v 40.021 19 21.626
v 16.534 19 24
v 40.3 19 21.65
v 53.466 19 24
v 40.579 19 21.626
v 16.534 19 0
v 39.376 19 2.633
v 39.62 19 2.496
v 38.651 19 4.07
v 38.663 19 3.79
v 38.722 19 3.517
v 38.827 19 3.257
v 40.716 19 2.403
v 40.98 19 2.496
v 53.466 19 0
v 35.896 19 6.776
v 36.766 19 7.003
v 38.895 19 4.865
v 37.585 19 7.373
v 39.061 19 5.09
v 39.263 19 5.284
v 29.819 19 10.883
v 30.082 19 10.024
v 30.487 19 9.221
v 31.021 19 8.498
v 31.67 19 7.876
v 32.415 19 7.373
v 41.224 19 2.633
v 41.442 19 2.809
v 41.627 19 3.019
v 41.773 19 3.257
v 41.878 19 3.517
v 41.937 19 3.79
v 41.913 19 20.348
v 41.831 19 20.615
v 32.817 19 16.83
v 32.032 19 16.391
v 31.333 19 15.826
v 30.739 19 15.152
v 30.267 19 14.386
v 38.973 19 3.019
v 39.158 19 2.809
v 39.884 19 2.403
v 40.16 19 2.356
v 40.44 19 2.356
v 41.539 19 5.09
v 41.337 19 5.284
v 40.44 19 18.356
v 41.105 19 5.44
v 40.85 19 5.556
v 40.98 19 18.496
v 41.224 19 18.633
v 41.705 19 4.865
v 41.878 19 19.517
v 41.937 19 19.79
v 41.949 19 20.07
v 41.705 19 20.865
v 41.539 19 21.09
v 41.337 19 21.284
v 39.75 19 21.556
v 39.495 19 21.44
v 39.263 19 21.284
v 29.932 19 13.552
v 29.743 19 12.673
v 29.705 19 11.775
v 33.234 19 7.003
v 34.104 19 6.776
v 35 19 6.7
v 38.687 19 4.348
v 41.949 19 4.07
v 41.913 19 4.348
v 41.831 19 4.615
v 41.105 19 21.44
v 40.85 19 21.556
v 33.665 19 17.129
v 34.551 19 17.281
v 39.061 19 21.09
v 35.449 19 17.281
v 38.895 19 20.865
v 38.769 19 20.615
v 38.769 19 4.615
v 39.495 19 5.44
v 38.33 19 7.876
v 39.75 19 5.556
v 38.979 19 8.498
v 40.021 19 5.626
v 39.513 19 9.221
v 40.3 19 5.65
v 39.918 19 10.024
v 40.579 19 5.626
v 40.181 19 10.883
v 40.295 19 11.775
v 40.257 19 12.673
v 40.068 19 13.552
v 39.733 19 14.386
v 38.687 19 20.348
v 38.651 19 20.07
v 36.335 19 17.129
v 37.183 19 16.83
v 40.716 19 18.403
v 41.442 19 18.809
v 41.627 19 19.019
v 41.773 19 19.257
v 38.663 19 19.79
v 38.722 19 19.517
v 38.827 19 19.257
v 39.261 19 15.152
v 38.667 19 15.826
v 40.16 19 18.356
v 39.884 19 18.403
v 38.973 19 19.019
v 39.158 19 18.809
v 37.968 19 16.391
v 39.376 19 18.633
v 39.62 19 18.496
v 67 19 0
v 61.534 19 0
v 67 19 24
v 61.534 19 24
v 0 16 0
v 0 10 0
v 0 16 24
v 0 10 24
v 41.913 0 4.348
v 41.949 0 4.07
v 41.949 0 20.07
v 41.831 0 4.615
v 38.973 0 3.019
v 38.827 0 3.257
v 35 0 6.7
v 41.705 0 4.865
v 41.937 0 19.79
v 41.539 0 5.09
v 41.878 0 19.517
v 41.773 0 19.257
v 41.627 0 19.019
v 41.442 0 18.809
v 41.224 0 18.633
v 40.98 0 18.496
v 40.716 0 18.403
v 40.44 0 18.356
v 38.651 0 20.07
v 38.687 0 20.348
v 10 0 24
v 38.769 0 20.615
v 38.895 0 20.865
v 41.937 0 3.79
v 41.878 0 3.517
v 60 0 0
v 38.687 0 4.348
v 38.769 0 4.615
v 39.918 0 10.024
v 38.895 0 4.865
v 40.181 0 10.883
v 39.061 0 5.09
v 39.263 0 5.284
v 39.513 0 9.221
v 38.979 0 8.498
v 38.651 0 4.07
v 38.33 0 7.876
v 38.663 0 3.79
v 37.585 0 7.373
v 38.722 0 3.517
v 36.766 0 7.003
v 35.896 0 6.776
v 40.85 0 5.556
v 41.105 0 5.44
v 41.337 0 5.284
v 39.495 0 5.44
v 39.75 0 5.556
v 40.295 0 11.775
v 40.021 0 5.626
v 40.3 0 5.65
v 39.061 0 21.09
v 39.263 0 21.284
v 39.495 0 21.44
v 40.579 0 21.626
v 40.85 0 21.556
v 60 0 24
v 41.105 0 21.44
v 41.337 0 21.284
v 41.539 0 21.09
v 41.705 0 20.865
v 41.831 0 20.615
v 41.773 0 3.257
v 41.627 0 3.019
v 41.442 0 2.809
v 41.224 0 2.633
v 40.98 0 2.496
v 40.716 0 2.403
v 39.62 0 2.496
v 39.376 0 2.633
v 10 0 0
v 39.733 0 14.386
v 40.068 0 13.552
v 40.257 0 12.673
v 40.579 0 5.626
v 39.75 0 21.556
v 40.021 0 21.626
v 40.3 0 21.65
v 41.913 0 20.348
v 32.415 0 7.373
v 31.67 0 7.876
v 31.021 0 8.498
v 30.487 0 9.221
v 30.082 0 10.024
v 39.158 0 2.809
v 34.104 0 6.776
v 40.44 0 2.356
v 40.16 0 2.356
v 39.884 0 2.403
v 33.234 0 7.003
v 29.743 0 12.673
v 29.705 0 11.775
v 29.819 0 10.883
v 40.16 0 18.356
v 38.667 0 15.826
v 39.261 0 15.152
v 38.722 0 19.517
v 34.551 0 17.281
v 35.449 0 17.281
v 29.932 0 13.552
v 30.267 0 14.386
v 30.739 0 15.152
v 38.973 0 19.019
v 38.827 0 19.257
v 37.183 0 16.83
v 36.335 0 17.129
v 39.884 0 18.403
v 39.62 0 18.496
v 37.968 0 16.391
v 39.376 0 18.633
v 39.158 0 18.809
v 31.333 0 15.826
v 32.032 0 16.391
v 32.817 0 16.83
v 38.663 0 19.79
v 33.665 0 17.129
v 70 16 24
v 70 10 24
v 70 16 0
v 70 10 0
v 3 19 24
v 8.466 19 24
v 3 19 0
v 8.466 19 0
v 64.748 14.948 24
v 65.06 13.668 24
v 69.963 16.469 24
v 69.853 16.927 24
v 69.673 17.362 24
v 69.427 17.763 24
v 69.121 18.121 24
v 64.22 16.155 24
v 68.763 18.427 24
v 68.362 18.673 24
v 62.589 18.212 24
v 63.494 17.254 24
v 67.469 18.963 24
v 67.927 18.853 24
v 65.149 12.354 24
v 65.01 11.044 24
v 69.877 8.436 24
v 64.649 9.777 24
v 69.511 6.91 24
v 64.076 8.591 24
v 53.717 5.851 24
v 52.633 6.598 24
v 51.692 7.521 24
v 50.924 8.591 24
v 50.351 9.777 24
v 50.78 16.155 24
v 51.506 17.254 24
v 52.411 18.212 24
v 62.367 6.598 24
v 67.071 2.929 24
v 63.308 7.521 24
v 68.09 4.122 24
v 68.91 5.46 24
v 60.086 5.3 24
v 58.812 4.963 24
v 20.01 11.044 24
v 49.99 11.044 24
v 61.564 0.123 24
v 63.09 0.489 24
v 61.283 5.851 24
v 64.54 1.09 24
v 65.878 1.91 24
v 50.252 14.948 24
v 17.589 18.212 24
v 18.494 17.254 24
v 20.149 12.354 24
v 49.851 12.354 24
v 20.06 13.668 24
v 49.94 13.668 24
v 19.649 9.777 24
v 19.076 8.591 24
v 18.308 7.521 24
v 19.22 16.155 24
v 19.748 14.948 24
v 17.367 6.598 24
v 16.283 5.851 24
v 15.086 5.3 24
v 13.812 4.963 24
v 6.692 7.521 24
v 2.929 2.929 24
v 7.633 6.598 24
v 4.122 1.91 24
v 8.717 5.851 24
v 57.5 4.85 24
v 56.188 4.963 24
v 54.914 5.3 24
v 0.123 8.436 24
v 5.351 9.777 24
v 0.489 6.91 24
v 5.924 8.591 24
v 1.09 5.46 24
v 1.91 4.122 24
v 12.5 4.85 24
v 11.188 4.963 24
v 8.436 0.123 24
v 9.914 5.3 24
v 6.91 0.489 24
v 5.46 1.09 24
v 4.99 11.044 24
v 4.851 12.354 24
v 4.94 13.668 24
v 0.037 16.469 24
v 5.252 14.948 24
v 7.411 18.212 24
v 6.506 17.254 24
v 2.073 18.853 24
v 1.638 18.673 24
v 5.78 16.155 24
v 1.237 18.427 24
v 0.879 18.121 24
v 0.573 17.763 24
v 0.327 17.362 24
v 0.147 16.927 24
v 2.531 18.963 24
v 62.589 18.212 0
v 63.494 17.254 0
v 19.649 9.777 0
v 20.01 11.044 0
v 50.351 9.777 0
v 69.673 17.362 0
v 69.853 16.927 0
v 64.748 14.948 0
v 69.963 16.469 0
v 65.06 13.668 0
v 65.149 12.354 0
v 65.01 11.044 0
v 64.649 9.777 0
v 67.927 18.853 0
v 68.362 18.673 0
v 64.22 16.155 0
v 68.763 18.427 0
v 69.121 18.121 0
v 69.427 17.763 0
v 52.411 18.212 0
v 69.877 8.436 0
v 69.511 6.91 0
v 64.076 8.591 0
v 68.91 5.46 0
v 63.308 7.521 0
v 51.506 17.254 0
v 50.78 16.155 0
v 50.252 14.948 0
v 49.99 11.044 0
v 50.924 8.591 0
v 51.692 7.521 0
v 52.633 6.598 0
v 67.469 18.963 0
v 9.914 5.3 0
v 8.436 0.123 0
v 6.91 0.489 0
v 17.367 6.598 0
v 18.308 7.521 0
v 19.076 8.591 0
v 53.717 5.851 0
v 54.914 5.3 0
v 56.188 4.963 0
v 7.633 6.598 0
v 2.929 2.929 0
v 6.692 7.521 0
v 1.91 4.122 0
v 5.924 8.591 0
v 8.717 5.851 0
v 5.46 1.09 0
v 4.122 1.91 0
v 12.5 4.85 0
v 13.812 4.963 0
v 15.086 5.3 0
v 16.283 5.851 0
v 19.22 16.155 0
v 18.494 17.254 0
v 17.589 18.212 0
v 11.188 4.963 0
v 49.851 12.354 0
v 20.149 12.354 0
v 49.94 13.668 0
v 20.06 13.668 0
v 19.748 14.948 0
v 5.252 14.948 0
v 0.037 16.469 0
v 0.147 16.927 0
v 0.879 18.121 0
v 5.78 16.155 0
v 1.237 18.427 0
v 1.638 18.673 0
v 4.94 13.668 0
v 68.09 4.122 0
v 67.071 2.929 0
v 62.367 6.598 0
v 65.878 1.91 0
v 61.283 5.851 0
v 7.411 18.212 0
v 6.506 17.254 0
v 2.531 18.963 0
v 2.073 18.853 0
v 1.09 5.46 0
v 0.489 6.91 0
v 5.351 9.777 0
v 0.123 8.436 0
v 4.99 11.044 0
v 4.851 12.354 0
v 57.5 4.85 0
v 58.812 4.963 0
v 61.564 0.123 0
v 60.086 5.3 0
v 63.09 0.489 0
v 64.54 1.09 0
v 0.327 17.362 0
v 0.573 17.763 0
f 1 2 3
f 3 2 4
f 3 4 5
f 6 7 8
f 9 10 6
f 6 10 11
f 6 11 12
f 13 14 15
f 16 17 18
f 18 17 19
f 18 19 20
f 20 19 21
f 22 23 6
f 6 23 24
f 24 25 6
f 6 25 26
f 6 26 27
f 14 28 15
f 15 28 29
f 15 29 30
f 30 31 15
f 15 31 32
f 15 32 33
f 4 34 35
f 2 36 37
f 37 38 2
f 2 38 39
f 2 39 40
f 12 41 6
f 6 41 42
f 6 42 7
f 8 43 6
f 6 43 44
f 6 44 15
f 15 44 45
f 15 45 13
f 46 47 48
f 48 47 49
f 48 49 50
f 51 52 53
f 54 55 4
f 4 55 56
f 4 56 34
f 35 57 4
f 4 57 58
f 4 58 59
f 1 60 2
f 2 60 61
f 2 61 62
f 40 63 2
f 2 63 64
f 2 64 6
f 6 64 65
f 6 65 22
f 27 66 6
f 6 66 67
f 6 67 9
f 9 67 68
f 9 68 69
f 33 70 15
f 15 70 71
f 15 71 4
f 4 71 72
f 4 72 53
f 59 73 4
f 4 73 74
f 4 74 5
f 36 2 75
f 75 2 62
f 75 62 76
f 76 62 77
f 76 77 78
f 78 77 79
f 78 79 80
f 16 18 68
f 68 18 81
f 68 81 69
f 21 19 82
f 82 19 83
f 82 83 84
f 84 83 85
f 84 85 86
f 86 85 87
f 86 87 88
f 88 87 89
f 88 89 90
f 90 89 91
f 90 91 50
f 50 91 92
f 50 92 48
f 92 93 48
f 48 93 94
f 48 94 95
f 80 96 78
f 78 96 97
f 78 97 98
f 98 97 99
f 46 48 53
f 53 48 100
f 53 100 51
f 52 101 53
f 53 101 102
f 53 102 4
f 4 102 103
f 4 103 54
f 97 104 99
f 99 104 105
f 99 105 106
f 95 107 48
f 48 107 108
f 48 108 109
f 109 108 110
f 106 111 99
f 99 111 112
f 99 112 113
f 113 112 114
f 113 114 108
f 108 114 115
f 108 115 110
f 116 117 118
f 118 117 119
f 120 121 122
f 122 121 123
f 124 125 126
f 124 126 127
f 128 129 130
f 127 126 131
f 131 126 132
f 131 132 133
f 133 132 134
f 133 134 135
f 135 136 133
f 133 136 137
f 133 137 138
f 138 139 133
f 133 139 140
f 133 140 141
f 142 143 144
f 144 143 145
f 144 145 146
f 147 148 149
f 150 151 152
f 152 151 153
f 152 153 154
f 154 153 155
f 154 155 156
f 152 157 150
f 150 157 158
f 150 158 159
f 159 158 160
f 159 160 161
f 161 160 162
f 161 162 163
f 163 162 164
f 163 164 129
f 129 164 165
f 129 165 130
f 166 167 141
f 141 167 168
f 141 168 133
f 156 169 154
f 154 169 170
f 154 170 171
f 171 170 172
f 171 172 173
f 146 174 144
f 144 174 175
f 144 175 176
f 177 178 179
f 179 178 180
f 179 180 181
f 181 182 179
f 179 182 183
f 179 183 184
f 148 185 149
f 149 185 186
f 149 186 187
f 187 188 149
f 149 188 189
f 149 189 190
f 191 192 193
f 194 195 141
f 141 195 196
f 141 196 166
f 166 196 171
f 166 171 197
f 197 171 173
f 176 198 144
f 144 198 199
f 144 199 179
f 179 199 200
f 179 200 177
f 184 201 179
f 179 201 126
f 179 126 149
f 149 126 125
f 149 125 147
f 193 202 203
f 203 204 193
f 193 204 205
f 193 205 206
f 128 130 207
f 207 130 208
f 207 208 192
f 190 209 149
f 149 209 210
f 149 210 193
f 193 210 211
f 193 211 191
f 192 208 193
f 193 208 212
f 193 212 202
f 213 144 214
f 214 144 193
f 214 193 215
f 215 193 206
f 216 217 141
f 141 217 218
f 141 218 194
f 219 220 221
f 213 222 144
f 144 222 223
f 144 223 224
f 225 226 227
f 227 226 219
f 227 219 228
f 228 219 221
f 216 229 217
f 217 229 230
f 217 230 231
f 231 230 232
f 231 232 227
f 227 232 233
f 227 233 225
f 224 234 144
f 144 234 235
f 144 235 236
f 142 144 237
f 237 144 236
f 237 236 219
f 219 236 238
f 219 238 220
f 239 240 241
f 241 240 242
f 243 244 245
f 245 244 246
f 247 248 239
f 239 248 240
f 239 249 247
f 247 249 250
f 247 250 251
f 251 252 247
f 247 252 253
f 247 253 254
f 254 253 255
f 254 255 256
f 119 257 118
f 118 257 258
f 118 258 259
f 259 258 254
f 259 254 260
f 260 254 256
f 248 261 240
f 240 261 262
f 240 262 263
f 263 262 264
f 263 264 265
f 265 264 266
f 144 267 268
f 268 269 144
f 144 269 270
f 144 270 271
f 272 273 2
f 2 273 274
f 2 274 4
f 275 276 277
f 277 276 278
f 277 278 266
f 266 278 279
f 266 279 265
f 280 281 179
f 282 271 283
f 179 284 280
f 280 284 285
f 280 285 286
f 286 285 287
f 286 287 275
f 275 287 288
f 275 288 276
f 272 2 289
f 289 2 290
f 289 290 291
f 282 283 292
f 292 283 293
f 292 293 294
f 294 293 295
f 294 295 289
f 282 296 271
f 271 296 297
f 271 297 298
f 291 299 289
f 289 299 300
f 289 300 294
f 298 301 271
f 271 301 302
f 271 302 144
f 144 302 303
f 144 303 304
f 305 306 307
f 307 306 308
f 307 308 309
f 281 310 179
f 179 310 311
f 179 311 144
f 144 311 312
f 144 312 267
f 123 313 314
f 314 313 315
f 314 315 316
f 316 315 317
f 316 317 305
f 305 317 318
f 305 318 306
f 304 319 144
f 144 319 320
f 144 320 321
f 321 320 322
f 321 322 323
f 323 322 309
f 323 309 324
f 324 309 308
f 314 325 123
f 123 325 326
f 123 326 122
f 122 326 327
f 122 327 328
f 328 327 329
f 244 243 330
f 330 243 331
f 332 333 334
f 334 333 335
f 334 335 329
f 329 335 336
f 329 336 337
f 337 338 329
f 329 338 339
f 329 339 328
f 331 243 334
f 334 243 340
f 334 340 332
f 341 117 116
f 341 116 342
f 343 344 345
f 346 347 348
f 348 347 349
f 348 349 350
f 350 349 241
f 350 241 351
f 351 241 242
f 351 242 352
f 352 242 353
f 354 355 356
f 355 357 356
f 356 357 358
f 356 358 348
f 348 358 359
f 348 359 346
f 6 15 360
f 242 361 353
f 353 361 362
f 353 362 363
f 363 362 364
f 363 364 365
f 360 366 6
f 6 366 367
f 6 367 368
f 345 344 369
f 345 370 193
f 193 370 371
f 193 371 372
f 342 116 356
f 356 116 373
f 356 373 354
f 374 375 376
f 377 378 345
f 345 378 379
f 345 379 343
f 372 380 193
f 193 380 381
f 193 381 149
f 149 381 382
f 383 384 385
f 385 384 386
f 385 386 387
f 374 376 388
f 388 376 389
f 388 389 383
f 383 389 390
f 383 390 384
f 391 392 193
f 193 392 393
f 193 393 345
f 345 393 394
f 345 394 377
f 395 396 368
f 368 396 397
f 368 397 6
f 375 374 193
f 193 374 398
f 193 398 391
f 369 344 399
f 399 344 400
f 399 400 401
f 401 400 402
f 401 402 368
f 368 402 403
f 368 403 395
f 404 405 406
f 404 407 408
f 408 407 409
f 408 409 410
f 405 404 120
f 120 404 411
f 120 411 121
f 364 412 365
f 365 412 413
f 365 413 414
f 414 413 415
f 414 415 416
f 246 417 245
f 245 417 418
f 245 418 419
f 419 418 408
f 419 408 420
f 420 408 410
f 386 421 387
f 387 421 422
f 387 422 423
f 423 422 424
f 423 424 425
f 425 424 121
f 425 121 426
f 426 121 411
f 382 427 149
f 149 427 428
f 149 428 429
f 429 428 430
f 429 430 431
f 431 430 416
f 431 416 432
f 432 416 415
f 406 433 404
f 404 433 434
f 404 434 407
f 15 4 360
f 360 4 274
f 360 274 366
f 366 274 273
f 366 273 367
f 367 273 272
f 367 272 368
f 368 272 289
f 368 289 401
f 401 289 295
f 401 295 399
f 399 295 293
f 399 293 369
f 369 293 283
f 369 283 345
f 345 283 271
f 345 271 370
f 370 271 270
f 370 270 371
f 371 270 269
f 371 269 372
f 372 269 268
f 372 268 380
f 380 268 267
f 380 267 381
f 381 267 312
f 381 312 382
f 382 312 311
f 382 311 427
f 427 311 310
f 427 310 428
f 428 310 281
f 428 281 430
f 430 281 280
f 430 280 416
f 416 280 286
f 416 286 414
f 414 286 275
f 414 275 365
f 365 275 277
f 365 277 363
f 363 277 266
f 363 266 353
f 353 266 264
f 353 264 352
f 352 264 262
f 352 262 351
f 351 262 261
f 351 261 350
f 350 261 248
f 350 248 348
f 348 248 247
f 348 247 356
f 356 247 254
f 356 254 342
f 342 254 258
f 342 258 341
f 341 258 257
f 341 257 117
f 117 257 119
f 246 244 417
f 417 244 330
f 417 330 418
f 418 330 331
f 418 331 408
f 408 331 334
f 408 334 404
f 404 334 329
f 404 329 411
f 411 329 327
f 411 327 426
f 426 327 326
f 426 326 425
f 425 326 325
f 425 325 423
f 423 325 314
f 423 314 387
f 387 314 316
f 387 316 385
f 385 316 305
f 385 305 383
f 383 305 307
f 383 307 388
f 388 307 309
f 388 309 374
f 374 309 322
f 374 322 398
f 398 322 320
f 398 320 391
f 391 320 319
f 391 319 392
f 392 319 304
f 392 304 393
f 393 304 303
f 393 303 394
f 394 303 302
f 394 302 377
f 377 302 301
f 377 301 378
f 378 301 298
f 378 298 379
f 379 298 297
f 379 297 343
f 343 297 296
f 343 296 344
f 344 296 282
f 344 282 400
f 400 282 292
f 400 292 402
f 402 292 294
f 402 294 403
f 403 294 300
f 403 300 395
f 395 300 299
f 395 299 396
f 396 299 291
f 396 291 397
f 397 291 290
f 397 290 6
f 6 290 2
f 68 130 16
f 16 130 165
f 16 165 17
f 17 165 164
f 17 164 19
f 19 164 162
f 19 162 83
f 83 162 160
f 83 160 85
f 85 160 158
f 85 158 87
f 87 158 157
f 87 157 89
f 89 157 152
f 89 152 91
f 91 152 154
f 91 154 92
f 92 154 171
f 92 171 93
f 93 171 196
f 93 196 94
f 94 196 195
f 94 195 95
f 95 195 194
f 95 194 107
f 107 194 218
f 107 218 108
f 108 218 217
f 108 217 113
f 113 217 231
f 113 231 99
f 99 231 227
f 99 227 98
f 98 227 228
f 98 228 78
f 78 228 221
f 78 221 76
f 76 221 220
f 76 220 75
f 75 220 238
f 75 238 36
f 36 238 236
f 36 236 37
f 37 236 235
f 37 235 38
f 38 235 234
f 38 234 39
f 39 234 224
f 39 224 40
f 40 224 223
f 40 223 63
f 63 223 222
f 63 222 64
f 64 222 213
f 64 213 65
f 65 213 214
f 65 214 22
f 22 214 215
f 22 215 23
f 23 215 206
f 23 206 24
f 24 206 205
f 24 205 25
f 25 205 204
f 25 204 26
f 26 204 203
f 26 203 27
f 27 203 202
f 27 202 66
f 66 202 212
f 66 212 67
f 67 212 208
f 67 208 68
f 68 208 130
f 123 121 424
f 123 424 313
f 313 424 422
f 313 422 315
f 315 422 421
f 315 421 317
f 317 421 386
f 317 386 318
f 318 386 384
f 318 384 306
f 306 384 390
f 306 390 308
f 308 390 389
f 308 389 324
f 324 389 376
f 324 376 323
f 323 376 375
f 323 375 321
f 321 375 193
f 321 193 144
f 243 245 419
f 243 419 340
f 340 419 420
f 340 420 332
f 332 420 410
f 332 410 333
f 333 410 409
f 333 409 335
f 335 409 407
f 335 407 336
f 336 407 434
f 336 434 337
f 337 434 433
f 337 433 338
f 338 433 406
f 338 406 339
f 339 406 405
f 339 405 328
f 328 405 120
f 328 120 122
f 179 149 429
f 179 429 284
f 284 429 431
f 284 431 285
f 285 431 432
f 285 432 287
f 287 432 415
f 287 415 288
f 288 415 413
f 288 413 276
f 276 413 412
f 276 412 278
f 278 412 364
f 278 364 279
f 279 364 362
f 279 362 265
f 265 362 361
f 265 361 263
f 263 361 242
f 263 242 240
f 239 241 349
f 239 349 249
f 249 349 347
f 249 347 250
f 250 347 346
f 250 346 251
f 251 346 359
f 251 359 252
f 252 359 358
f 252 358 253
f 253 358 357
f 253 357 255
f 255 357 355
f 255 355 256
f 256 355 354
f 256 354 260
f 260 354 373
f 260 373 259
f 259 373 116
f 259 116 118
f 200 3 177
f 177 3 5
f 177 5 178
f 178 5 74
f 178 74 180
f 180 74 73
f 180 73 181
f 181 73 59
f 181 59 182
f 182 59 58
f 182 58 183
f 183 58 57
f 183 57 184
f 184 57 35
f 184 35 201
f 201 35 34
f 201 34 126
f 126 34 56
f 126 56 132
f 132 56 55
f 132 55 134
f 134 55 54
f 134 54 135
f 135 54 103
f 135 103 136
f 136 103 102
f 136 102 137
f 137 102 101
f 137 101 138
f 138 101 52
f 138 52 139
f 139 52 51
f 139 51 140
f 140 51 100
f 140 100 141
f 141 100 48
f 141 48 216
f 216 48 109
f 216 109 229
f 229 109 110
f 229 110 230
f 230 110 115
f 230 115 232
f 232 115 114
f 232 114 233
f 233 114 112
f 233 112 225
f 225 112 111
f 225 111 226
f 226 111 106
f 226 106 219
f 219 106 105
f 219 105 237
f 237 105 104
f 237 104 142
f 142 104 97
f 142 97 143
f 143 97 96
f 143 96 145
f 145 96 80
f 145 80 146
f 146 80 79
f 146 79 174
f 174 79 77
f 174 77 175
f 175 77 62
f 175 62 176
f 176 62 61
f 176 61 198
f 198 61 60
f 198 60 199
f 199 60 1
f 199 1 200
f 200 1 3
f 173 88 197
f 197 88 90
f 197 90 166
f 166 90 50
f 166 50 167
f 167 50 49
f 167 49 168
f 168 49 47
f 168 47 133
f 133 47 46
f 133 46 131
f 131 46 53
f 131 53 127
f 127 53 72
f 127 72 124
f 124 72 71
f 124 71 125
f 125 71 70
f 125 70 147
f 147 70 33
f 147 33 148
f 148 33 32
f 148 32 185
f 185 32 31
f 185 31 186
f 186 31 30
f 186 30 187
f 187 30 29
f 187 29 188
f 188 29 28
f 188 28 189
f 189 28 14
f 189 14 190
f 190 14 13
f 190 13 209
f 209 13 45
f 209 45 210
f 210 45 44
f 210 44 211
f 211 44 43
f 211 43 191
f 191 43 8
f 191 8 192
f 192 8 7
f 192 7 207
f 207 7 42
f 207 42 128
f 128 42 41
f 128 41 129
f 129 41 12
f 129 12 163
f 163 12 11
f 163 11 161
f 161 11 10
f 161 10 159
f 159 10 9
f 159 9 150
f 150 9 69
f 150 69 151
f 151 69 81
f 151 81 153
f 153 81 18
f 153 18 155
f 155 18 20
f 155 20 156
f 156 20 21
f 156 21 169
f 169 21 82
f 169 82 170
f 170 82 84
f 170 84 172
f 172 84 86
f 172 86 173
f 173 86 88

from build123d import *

# Parameters (mm, degrees)
SKETCH_1_W          = 70
SKETCH_1_H          = 19
EXTRUDE_1_DEPTH     = 24
SKETCH_2_R          = 7.65
CUT_EXTRUDE_1_DEPTH = 24
SKETCH_3_R          = 5.3
CUT_EXTRUDE_2_DEPTH = 24
FILLET_1_R          = 10
FILLET_4_R          = 3
FILLET_5_R          = 10
FILLET_6_R          = 3
SKETCH_4_R          = 1.65
CUT_EXTRUDE_3_DEPTH = 24


with BuildPart() as part:
    # 草图1 → 凸台-拉伸1 (new body)
    with BuildSketch(Plane.XY):
        with Locations((35, 9.5)):
            Rectangle(SKETCH_1_W, SKETCH_1_H)
    extrude(amount=EXTRUDE_1_DEPTH)

    # 草图2 → 切除-拉伸1 (cut)
    with BuildSketch(Plane.XY.offset(24)):
        with Locations((57.5, 12.5)):
            Circle(SKETCH_2_R)
        with Locations((12.5, 12.5)):
            Circle(SKETCH_2_R)
    extrude(amount=-CUT_EXTRUDE_1_DEPTH, mode=Mode.SUBTRACT)

    # 草图3 → 切除-拉伸2 (cut)
    with BuildSketch(Plane.XZ):
        with Locations((35, 12)):
            Circle(SKETCH_3_R)
    extrude(amount=-CUT_EXTRUDE_2_DEPTH, mode=Mode.SUBTRACT)

    # 圆角1
    fillet_1_edges = [part.edges().sort_by_distance(p)[0] for p in [
        (0, 0, 12),
    ]]
    fillet(fillet_1_edges, radius=FILLET_1_R)

    # 圆角4
    fillet_4_edges = [part.edges().sort_by_distance(p)[0] for p in [
        (0, 19, 12),
    ]]
    fillet(fillet_4_edges, radius=FILLET_4_R)

    # 圆角5
    fillet_5_edges = [part.edges().sort_by_distance(p)[0] for p in [
        (70, 0, 12),
    ]]
    fillet(fillet_5_edges, radius=FILLET_5_R)

    # 圆角6
    fillet_6_edges = [part.edges().sort_by_distance(p)[0] for p in [
        (70, 19, 12),
    ]]
    fillet(fillet_6_edges, radius=FILLET_6_R)

    # 草图4 → 切除-拉伸3 (cut)
    with BuildSketch(Plane(origin=(0, 19, 0), x_dir=(1, 0, 0), z_dir=(0, 1, 0))):
        with Locations((40.3, -20)):
            Circle(SKETCH_4_R)
        with Locations((40.3, -4)):
            Circle(SKETCH_4_R)
    extrude(amount=-CUT_EXTRUDE_3_DEPTH, mode=Mode.SUBTRACT)


solid = part.part
